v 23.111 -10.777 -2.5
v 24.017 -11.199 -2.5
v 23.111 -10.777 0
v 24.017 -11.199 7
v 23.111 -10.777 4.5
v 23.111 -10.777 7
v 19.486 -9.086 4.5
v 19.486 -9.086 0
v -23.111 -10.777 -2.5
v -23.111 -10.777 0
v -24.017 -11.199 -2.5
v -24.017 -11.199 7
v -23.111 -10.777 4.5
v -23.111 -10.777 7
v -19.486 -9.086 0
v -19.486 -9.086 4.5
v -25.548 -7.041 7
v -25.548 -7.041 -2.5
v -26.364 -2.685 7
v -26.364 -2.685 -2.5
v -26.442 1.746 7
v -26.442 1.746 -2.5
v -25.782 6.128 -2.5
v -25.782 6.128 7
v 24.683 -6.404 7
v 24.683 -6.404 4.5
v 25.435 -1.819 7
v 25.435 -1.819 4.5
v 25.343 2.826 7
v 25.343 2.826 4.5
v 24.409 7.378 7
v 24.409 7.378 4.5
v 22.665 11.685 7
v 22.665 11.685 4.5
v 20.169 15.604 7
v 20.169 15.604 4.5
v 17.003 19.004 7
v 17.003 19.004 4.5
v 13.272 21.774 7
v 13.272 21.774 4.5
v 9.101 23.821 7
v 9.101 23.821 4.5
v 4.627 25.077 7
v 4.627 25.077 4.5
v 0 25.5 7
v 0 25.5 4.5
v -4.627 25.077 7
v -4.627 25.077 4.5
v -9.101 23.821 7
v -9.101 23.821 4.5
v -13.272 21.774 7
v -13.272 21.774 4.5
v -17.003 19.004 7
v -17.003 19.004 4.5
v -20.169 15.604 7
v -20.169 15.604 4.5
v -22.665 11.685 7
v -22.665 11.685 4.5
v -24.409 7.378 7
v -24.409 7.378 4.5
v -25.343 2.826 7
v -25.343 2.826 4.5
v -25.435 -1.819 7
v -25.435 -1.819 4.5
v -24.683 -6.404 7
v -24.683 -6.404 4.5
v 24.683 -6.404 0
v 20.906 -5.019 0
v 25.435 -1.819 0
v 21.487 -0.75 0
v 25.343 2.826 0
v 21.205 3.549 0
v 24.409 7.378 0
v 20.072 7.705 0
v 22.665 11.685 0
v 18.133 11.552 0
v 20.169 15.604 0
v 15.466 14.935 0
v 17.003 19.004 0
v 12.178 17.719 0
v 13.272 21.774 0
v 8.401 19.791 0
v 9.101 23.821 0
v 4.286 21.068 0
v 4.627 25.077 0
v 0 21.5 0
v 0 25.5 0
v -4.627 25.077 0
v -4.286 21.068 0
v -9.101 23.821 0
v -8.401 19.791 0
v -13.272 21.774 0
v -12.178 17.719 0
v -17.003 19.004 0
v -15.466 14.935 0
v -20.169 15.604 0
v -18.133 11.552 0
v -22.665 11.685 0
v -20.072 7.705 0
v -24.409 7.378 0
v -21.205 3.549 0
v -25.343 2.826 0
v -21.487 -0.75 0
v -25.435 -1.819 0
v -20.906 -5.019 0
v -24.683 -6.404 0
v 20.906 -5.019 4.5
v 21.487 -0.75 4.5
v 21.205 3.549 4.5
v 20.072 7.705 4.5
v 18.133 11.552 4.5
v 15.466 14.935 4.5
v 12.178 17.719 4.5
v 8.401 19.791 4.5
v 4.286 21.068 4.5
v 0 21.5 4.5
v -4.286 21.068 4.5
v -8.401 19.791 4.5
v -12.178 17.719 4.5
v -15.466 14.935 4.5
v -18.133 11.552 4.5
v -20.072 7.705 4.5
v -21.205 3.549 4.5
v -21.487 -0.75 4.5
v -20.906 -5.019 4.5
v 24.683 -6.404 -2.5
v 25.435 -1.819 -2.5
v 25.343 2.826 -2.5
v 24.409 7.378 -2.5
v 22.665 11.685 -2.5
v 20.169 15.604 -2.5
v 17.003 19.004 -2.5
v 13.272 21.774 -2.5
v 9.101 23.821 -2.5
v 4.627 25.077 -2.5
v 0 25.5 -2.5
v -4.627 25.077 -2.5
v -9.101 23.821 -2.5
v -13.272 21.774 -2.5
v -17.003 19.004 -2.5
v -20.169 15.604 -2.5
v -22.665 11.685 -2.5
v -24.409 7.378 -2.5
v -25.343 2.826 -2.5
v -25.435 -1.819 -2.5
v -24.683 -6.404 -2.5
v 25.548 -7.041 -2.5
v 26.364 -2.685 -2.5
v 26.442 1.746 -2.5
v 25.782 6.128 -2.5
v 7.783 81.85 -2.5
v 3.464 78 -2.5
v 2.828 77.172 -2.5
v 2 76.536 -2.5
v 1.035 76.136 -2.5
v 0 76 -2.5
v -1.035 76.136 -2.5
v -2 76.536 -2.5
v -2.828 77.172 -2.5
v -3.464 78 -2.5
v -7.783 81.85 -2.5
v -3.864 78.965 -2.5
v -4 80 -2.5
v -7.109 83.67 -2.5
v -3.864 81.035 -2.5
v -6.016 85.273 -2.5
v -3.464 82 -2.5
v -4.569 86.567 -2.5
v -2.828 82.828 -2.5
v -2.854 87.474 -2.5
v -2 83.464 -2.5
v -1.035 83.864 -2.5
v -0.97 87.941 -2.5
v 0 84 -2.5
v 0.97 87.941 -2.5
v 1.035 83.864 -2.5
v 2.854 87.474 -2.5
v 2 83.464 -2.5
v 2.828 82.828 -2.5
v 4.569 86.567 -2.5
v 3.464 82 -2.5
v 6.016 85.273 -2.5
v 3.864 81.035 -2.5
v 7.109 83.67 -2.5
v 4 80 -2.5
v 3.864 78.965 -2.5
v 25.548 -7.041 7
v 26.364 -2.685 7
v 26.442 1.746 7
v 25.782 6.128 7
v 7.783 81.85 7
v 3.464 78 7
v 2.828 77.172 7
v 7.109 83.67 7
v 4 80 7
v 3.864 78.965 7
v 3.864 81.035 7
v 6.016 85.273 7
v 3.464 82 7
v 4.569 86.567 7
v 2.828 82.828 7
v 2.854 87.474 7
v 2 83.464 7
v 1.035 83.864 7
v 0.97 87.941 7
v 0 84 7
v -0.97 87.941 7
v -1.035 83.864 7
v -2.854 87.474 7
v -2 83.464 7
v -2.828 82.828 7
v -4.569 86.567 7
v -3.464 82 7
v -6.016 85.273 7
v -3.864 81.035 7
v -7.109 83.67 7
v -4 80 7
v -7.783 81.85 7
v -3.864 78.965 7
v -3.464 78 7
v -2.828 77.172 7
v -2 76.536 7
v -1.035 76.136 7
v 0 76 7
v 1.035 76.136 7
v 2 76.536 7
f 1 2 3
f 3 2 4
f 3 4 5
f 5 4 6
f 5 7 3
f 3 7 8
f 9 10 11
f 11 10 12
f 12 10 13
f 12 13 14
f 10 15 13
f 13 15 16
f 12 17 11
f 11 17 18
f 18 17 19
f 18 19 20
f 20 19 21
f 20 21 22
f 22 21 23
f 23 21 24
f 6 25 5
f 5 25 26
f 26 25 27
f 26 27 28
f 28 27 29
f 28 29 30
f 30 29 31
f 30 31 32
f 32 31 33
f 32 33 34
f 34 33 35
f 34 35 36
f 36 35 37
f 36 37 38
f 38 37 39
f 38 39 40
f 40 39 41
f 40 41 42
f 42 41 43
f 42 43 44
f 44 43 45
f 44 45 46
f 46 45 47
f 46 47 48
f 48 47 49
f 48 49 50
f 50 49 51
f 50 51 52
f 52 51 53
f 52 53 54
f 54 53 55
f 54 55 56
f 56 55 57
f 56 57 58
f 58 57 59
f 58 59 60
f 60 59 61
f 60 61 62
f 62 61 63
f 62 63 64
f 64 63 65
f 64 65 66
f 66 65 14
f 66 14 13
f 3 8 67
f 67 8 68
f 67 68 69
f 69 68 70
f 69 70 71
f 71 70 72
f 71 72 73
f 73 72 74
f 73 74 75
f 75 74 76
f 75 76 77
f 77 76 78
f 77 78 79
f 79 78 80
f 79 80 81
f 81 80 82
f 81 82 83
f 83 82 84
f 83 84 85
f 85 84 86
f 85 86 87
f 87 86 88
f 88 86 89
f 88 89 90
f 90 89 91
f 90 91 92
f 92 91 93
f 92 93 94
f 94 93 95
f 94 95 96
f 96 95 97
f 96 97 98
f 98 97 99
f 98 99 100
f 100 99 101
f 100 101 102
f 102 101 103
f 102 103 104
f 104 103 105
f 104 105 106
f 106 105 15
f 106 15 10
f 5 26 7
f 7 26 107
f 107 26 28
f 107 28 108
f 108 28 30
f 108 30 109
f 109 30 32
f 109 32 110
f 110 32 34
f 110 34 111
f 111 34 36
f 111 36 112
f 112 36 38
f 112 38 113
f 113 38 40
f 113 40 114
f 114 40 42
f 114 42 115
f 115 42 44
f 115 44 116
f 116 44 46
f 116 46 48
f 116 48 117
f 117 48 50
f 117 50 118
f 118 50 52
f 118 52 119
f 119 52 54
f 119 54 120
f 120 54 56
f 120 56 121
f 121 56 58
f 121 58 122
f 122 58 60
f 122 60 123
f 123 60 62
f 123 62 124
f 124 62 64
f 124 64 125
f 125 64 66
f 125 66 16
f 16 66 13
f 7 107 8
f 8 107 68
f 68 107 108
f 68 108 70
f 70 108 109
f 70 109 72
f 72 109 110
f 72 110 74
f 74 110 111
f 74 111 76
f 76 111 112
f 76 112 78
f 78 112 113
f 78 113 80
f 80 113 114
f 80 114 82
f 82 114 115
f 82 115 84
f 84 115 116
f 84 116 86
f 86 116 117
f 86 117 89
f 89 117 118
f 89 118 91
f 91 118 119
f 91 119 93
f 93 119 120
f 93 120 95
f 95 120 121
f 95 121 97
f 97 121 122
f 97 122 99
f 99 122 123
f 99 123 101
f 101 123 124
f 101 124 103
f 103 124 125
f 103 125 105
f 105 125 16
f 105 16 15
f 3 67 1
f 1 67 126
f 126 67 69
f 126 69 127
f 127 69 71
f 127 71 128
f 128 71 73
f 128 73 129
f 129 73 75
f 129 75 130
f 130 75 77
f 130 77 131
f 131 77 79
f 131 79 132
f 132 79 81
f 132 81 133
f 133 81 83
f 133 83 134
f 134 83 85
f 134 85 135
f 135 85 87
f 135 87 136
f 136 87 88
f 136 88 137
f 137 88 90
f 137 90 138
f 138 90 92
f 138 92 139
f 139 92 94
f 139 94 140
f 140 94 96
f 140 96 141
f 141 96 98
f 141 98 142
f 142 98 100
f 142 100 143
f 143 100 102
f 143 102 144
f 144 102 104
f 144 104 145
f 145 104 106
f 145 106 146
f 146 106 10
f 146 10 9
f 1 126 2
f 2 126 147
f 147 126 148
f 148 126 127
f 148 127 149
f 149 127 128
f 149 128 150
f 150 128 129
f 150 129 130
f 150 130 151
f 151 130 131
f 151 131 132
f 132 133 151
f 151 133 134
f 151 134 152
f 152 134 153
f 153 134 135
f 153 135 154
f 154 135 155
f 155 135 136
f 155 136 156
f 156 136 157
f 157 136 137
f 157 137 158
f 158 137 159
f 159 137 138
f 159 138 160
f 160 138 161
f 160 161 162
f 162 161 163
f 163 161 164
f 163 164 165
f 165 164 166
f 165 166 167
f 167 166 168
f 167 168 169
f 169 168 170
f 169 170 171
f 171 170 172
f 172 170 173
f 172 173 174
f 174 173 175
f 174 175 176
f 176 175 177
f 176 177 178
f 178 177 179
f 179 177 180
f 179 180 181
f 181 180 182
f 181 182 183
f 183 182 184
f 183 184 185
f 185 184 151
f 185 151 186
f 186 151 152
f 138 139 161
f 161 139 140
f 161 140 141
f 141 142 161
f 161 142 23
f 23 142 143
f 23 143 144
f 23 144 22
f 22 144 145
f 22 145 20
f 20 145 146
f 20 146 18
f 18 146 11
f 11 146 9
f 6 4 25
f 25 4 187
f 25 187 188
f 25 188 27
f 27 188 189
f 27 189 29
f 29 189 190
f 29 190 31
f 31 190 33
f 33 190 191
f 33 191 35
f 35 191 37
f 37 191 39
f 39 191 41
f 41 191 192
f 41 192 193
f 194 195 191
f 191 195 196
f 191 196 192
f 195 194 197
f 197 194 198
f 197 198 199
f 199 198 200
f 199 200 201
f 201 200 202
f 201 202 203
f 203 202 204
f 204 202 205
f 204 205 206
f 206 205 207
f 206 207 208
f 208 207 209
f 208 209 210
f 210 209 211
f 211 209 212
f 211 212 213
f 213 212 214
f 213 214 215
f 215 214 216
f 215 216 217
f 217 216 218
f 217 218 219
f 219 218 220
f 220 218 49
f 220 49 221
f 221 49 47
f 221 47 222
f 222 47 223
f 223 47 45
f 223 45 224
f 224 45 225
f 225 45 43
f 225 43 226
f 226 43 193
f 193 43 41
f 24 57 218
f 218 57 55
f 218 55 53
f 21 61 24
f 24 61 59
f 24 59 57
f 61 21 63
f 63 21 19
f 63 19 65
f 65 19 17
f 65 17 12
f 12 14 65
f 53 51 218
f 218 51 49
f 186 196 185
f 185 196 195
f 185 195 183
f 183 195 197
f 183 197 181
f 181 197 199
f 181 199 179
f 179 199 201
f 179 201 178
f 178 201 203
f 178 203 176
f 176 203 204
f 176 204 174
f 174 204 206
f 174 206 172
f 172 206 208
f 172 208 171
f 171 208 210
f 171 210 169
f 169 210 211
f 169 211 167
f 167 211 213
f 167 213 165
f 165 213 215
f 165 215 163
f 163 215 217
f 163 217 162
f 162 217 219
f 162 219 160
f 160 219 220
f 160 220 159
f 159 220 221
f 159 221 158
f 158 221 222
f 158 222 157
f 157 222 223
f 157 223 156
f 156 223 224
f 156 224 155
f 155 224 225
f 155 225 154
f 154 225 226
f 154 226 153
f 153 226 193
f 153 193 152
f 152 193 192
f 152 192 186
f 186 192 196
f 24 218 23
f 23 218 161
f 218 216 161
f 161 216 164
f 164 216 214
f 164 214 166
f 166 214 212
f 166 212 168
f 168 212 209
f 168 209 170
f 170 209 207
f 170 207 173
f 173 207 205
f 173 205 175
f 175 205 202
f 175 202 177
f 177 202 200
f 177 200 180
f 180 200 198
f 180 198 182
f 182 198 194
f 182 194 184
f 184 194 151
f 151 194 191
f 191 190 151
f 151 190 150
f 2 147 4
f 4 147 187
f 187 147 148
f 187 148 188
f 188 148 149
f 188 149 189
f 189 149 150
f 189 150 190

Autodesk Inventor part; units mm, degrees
ref_plane "YZ Plane" through (0, 0, 0) normal (1, 0, 0) x (0, 1, 0)
ref_plane "XZ Plane" through (0, 0, 0) normal (0, 1, 0) x (-1, 0, 0)
sketch "Sketch1" plane through (0, 0, 0) normal (0, 0, 1) x (1, 0, 0)
  circle A0 centre (0, 0) radius 21.5
  arc A1 (-25.7817, 6.1281) -> (25.7817, 6.1281) centre (0, 0) ccw
  line L0 (0, 0) -> (0, 80) construction
  circle A2 centre (0, 80) radius 4
  arc A3 (7.7832, 81.85) -> (-7.7832, 81.85) centre (0, 80) ccw
  line L1 (-7.7832, 81.85) -> (-25.7817, 6.1281)
  line L2 (7.7832, 81.85) -> (25.7817, 6.1281)
  dimension "d0" = 43
  dimension "d1" = 8
  dimension "d2" = 80
  dimension "d3" = 8
  dimension "d4" = 5
extrude "Extrusion1" add sketch "Sketch1" along normal blind 4.5
sketch "Sketch2" plane through (0, 0, 4.5) normal (0, 0, 1) x (1, 0, 0)
  circle A0 centre (0, 0) radius 21.5 projected
  circle A1 centre (0, 80) radius 4 projected
  arc A2 (-25.7817, 6.1281) -> (25.7817, 6.1281) centre (0, 0) ccw projected
  line L0 (25.7817, 6.1281) -> (7.7832, 81.85) projected
  arc A3 (7.7832, 81.85) -> (-7.7832, 81.85) centre (0, 80) ccw projected
  line L1 (-7.7832, 81.85) -> (-25.7817, 6.1281) projected
  circle A4 centre (0, 0) radius 25.5
  dimension "d7" = 51
extrude "Extrusion2" add sketch "Sketch2" along normal blind 2.5 contours L1 A3 L0 A2
ref_plane "Work Plane1" through (0, 0, 2.25) normal (0, 0, 1) x (1, 0, 0)
mirror "Mirror1" about plane through (0, 0, 2.25) normal (0, 0, 1) of "Extrusion2"
sketch "Sketch3" plane through (0, 0, 7) normal (0, 0, 1) x (1, 0, 0)
  arc A0 (-25.7817, 6.1281) -> (25.7817, 6.1281) centre (0, 0) ccw construction
  line L0 (0, 0) -> (-24.0172, -11.1994)
  line L1 (0, 0) -> (24.0172, -11.1994)
  arc A1 (-24.0172, -11.1994) -> (24.0172, -11.1994) centre (0, 0) ccw
  line L2 (0, 0) -> (0, -26.5) construction
  dimension "d10" = 130
extrude "Extrusion3" cut sketch "Sketch3" against normal through all
properties part number "fork"
